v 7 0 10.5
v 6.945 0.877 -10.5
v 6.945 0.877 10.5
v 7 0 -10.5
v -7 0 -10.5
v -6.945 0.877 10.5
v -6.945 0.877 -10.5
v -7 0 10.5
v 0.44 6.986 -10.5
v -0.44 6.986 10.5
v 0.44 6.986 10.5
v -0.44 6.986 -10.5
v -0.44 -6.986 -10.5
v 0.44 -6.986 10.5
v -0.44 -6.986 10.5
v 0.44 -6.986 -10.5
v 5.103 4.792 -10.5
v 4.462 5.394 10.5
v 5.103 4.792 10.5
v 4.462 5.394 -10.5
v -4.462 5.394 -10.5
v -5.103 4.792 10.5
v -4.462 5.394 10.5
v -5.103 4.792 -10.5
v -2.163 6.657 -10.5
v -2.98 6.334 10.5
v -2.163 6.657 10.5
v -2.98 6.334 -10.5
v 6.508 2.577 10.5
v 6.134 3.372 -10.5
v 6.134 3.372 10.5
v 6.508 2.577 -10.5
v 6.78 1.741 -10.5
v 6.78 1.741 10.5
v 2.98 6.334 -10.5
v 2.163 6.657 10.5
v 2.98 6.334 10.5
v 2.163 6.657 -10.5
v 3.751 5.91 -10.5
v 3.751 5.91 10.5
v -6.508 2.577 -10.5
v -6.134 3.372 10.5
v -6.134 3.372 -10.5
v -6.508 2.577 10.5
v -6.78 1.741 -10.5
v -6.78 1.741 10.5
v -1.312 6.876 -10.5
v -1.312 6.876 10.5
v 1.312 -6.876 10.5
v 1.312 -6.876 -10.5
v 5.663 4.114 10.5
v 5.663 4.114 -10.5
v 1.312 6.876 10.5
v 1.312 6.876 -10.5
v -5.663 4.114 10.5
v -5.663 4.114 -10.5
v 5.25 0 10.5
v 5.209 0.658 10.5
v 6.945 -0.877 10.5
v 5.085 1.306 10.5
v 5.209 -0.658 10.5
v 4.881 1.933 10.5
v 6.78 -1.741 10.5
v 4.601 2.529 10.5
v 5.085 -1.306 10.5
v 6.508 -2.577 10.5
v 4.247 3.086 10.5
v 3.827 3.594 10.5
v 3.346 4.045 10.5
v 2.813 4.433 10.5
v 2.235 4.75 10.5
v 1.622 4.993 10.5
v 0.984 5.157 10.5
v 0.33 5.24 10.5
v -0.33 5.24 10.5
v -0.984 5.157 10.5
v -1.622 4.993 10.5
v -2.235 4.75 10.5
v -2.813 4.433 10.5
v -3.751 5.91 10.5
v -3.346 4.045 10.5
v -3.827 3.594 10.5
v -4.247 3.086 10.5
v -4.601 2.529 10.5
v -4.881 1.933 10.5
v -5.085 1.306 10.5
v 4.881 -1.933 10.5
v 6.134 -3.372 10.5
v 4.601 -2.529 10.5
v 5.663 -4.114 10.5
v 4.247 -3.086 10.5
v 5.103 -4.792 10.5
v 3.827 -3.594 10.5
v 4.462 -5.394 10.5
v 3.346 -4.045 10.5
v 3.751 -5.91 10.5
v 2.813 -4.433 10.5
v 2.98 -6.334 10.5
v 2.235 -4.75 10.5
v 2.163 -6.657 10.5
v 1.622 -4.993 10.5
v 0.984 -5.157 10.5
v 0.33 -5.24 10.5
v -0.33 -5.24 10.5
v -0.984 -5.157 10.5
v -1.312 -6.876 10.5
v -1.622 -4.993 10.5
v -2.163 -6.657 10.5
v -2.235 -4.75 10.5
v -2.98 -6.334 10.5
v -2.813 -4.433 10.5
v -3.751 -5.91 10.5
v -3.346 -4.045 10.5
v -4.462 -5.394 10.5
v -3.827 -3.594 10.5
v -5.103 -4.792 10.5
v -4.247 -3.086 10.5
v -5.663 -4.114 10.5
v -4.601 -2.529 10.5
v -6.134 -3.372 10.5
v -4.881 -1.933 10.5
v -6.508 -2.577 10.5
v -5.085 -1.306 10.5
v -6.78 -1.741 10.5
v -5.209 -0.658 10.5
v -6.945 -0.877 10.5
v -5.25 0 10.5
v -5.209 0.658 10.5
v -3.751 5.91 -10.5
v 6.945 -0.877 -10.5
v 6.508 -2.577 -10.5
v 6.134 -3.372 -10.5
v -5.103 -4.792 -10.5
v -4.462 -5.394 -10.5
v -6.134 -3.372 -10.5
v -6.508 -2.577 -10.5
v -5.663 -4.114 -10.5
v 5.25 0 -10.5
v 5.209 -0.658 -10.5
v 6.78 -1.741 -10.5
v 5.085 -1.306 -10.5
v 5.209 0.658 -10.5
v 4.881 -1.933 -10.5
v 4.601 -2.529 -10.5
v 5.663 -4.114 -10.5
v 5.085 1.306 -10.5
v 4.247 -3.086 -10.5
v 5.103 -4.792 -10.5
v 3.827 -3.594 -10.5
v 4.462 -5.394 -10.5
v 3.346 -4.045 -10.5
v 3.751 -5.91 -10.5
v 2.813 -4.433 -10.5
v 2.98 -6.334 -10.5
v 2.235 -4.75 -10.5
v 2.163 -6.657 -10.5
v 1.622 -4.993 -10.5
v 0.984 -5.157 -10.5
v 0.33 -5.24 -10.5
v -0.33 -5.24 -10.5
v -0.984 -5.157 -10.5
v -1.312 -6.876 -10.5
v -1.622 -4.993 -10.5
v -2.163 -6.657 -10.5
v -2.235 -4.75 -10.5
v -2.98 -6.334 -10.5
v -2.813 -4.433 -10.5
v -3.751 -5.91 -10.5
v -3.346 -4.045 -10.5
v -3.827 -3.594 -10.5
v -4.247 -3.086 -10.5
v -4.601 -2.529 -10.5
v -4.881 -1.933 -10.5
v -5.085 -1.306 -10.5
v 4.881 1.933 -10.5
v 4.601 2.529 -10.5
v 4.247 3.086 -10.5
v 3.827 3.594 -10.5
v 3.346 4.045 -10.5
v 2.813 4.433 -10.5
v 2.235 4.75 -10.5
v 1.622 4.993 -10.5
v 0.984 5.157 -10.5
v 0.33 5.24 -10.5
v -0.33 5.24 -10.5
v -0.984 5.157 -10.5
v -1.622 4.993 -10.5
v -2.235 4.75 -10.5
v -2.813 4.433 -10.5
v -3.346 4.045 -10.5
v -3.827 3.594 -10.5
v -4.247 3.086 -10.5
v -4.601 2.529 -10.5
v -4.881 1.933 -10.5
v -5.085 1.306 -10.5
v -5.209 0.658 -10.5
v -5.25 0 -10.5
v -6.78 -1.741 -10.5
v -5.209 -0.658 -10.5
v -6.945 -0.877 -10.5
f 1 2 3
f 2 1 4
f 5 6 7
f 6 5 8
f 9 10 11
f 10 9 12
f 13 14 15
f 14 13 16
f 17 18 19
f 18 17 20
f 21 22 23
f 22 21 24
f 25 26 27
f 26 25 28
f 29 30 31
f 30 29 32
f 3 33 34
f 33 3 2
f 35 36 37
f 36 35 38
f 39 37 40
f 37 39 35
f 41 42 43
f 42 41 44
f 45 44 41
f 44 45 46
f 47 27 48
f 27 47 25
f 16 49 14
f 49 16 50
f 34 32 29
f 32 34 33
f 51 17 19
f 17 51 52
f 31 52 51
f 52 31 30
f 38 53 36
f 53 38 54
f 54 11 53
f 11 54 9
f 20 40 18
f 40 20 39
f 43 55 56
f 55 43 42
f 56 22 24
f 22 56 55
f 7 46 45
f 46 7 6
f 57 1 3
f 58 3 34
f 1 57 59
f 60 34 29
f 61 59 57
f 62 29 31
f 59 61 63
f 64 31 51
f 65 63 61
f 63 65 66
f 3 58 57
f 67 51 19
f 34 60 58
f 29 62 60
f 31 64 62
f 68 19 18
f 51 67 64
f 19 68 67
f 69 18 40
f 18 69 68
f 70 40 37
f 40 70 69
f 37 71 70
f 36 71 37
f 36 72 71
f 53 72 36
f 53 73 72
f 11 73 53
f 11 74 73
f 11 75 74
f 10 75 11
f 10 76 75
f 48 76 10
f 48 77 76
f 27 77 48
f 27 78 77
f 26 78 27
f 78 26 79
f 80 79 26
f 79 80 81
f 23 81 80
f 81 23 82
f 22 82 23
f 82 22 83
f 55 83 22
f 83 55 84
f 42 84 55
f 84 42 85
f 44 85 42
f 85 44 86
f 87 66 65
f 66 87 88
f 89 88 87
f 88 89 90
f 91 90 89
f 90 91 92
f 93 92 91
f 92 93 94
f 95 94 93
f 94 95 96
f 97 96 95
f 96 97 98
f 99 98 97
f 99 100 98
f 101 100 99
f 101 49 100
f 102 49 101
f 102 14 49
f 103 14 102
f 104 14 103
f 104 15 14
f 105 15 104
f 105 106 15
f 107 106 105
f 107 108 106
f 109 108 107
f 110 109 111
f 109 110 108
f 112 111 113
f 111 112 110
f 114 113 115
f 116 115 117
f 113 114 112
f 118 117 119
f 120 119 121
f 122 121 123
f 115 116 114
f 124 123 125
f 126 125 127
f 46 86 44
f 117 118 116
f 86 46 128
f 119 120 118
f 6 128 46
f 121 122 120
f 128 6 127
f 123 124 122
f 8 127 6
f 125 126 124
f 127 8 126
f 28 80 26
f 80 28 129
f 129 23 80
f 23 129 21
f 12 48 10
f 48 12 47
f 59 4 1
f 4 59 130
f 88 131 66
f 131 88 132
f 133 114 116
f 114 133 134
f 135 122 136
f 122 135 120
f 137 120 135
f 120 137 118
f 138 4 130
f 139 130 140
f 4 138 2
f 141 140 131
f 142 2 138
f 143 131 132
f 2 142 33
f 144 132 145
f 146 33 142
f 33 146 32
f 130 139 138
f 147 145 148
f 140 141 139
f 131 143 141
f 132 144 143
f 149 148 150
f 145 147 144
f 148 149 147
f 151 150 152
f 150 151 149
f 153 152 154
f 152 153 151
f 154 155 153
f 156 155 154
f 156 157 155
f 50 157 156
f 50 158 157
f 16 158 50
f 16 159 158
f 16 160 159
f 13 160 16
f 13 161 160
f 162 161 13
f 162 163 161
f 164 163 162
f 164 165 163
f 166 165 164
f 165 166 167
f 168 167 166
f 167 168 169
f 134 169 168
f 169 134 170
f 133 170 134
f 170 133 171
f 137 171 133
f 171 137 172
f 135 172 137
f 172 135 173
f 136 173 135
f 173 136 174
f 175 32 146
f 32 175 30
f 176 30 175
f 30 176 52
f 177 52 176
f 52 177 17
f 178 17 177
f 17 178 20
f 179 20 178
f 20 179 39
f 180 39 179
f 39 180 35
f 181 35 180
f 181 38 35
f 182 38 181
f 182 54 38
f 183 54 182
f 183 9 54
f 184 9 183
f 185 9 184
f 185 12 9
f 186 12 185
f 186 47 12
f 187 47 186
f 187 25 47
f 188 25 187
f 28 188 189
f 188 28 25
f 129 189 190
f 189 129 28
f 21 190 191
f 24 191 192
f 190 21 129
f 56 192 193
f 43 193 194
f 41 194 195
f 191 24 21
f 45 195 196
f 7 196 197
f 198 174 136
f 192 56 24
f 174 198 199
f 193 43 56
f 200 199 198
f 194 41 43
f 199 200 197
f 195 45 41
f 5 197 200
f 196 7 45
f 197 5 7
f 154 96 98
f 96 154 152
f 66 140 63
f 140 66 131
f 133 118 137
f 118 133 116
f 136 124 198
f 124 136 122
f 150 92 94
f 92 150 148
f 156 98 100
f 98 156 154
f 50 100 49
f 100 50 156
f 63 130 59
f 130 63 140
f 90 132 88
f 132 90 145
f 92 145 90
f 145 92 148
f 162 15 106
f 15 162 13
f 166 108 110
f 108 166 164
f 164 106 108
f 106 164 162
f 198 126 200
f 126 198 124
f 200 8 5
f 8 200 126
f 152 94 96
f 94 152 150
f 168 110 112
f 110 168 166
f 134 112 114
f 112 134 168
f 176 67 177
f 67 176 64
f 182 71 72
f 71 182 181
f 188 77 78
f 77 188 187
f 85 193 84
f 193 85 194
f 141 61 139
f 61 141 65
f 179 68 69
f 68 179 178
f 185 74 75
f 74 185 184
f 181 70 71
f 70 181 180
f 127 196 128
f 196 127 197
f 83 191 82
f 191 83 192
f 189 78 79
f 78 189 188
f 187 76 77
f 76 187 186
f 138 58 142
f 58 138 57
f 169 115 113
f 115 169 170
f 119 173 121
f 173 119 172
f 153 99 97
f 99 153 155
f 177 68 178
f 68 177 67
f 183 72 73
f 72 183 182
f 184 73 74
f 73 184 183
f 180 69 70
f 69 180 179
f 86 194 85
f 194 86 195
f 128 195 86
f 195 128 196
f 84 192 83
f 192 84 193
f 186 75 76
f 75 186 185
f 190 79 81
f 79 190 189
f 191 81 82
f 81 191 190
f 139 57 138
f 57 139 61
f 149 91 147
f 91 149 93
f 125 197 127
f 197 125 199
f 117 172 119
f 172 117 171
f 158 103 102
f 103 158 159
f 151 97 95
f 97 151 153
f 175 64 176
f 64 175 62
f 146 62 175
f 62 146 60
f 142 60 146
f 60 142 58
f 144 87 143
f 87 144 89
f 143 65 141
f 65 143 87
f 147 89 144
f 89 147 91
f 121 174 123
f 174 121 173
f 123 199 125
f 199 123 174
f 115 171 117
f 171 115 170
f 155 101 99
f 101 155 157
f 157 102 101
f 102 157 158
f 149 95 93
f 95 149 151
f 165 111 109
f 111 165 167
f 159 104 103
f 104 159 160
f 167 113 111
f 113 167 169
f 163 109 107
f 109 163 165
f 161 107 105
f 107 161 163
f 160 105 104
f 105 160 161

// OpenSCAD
$fn = 50;


difference() {
	union() {
		translate(v = [0, 0, -10.5000000000]) {
			cylinder(h = 21, r = 7.0000000000);
		}
	}
	union() {
		translate(v = [0, 0, -100.0000000000]) {
			cylinder(h = 200, r = 5.2500000000);
		}
	}
}
